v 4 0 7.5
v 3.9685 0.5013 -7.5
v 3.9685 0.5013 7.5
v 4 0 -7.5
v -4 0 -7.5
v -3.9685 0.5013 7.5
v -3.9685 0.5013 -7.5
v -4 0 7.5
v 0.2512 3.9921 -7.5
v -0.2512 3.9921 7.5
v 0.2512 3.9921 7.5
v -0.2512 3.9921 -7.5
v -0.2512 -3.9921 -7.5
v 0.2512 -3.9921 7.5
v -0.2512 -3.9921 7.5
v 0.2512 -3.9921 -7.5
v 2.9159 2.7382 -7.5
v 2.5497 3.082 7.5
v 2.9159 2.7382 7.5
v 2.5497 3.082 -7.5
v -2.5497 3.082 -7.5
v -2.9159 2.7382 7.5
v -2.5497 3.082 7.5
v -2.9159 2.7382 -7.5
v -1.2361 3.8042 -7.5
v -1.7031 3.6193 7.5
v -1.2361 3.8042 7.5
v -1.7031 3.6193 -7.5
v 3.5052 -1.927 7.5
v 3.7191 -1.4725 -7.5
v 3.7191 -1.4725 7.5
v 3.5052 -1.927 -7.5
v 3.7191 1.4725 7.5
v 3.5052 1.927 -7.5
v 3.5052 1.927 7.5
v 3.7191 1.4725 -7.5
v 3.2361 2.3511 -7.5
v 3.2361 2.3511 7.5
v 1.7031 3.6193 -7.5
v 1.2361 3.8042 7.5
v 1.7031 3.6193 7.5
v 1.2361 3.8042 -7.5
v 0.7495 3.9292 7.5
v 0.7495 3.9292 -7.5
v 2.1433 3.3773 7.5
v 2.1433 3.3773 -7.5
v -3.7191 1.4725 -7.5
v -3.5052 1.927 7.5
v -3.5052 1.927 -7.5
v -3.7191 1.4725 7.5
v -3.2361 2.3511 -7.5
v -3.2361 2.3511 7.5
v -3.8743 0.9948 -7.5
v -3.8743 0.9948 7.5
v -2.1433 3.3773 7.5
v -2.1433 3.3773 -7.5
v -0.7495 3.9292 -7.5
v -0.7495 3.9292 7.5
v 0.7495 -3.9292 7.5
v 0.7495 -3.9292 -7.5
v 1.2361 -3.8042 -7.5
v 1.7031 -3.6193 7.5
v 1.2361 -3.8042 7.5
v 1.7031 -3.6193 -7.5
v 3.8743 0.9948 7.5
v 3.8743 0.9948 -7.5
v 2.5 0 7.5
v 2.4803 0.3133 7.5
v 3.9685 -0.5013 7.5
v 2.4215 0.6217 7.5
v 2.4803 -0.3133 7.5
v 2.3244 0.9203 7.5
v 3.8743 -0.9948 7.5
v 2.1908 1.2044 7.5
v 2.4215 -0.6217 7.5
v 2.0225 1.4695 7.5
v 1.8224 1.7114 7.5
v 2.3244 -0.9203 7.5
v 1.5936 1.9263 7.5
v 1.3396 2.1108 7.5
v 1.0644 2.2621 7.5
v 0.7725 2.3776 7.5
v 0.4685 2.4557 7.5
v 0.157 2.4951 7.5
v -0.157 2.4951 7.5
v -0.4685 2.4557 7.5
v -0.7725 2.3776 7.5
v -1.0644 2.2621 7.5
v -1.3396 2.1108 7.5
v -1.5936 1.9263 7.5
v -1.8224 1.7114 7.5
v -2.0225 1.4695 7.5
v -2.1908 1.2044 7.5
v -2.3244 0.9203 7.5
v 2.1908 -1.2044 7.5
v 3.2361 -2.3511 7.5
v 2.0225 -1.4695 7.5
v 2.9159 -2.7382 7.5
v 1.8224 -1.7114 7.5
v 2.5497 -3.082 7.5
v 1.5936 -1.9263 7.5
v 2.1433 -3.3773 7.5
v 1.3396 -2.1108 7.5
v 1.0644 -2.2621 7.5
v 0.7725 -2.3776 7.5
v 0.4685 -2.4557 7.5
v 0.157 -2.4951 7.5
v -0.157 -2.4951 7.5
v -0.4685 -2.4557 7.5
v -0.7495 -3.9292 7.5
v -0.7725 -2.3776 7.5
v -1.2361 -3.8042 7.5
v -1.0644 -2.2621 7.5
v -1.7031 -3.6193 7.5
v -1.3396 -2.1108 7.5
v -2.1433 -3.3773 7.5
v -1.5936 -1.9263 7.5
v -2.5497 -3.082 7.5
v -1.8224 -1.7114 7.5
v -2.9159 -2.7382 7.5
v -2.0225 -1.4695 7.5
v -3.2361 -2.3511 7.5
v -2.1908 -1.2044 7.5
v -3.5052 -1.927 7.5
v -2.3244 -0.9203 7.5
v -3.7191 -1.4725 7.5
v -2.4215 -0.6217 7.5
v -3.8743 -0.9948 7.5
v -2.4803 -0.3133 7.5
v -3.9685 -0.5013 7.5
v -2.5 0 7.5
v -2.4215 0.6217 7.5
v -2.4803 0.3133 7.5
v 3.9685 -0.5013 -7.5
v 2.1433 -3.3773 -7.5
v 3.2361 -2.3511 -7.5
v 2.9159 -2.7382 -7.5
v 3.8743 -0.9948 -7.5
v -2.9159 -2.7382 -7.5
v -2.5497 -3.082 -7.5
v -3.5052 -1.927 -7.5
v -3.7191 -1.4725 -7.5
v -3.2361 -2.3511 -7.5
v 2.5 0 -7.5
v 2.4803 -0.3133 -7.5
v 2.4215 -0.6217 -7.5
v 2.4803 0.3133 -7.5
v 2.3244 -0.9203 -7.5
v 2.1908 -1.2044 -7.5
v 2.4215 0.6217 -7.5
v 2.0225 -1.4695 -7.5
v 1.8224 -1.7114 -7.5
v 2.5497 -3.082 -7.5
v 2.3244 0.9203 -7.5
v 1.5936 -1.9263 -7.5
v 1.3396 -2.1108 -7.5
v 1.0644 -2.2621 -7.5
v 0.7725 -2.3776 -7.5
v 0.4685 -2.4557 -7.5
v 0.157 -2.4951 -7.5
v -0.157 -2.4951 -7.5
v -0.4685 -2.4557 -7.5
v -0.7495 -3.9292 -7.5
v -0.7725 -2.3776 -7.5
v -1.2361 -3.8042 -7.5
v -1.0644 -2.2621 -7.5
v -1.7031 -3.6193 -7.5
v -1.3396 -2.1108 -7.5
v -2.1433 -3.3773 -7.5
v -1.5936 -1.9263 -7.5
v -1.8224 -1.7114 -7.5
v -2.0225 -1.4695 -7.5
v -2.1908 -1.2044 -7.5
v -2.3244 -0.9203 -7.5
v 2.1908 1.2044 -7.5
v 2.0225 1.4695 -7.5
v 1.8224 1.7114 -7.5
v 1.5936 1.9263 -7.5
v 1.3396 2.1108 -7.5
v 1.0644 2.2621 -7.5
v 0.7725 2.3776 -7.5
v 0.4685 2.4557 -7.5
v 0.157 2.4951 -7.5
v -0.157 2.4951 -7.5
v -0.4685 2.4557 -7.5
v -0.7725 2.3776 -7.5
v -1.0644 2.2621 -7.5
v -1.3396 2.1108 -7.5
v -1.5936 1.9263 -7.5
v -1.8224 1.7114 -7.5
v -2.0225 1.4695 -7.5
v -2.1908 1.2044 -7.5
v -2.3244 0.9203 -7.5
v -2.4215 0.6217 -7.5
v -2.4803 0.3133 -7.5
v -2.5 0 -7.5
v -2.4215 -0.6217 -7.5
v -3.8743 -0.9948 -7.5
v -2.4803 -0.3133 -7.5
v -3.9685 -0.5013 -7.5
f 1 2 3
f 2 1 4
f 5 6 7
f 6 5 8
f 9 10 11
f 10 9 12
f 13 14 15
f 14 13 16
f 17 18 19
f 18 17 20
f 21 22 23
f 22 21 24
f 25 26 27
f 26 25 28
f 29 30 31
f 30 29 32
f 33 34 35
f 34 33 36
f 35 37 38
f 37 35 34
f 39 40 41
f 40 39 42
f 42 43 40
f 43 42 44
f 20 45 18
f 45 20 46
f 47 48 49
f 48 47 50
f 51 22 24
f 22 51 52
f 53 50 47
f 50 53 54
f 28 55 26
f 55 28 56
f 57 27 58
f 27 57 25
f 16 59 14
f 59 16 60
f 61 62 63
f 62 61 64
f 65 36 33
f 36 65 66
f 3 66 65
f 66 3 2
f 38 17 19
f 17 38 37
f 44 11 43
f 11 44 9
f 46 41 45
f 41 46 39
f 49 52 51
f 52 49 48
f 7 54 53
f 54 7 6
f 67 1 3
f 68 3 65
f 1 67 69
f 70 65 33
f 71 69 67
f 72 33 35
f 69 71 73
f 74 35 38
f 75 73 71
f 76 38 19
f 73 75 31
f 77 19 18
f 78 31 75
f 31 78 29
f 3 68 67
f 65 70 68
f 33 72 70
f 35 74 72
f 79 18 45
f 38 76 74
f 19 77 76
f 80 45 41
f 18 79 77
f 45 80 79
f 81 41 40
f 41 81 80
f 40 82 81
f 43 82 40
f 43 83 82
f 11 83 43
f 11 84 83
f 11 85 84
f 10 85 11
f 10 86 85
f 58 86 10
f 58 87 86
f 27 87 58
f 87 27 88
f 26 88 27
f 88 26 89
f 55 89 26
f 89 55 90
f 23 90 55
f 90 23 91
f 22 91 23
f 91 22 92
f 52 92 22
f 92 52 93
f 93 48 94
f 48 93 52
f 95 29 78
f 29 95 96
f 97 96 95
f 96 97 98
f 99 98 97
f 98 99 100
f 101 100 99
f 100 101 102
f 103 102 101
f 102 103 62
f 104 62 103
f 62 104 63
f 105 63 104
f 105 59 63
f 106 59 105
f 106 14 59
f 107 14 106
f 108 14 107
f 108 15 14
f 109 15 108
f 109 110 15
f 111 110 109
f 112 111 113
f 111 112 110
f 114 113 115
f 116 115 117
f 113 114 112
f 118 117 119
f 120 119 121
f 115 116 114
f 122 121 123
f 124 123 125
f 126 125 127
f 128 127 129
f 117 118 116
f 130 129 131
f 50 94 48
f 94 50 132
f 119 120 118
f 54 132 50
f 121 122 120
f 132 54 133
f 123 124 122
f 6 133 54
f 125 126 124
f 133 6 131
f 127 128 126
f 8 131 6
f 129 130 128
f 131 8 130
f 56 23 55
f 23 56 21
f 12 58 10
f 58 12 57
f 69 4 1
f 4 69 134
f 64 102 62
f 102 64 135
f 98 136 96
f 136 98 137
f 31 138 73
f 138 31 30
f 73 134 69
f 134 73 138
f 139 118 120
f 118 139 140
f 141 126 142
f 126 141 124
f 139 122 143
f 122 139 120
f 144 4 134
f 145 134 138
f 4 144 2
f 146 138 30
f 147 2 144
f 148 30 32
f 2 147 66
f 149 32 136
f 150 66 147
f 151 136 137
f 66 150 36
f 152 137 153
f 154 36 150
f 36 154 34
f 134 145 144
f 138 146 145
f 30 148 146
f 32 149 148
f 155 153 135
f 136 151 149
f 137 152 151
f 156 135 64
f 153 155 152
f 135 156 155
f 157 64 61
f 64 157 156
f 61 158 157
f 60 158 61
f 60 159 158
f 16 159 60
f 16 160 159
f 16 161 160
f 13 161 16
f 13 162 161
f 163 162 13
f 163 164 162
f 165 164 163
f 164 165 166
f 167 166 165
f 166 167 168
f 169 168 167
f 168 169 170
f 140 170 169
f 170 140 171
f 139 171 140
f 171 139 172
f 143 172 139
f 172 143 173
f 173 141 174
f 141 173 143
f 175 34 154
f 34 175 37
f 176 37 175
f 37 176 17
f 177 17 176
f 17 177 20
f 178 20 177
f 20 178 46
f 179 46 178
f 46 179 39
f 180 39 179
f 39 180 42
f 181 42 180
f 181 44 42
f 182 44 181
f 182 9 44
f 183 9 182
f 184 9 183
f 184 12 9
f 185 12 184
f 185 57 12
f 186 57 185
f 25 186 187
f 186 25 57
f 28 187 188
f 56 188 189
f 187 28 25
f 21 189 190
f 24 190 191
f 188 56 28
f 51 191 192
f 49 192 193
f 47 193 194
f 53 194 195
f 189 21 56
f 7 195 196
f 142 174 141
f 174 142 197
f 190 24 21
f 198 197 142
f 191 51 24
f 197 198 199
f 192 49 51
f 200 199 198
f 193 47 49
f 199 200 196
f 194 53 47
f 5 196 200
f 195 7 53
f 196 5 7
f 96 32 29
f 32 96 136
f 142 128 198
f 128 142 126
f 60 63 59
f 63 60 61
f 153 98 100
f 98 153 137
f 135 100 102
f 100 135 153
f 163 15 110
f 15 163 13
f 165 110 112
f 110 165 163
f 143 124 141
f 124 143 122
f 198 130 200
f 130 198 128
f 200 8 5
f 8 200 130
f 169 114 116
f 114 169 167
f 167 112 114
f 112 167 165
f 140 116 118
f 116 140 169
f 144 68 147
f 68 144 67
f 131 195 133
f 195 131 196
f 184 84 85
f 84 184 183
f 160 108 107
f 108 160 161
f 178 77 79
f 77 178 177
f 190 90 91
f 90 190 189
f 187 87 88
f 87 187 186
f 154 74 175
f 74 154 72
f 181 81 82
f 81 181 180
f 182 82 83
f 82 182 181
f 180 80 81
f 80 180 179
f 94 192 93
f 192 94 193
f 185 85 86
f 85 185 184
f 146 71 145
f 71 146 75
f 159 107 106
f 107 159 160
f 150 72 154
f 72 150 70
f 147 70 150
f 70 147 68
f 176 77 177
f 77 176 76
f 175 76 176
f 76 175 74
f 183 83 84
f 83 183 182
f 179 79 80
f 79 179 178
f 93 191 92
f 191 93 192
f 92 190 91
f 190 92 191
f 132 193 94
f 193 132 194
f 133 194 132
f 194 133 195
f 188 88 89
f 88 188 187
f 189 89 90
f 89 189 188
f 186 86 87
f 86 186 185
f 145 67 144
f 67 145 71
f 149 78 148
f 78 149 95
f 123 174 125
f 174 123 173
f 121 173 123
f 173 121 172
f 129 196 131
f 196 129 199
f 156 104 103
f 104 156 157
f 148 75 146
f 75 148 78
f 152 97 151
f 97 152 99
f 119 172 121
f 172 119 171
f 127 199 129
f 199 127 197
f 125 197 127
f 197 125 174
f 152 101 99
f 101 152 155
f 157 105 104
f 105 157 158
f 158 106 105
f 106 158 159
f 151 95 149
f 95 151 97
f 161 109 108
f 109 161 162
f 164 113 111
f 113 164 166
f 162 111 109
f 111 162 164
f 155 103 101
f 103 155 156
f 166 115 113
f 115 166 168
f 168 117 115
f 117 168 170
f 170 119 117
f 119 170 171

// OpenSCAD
$fn = 50;


difference() {
	union() {
		translate(v = [0, 0, -7.5000000000]) {
			cylinder(h = 15, r = 4.0000000000);
		}
	}
	union() {
		translate(v = [0, 0, -100.0000000000]) {
			cylinder(h = 200, r = 2.5000000000);
		}
	}
}
